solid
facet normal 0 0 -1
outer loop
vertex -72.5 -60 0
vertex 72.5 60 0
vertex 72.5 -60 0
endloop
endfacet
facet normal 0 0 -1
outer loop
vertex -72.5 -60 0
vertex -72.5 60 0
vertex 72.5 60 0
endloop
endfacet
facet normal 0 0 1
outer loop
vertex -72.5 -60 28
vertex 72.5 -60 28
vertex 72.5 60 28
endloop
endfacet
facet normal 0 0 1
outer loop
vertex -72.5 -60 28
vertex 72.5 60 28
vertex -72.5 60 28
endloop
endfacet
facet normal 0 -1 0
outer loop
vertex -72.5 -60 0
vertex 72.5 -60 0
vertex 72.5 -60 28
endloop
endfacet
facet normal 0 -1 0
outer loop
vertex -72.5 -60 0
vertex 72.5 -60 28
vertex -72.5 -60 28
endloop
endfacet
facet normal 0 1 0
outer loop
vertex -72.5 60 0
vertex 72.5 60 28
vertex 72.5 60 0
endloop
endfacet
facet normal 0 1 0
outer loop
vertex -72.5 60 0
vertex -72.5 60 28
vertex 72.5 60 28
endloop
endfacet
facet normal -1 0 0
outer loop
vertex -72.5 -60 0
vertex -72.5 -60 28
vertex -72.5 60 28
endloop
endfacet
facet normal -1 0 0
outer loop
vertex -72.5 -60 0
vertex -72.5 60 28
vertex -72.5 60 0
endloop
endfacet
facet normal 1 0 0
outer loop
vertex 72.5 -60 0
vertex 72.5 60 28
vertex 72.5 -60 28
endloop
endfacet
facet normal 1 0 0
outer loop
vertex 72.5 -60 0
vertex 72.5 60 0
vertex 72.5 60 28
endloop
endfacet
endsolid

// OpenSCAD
// Gemini 4 Argon Parametric OpenSCAD — PRT-01: Weighted H-Frame Studio Base Hub
$fn = 64;
translate([-72.50, -60.00, 0])
  cube([145, 120, 28]);
